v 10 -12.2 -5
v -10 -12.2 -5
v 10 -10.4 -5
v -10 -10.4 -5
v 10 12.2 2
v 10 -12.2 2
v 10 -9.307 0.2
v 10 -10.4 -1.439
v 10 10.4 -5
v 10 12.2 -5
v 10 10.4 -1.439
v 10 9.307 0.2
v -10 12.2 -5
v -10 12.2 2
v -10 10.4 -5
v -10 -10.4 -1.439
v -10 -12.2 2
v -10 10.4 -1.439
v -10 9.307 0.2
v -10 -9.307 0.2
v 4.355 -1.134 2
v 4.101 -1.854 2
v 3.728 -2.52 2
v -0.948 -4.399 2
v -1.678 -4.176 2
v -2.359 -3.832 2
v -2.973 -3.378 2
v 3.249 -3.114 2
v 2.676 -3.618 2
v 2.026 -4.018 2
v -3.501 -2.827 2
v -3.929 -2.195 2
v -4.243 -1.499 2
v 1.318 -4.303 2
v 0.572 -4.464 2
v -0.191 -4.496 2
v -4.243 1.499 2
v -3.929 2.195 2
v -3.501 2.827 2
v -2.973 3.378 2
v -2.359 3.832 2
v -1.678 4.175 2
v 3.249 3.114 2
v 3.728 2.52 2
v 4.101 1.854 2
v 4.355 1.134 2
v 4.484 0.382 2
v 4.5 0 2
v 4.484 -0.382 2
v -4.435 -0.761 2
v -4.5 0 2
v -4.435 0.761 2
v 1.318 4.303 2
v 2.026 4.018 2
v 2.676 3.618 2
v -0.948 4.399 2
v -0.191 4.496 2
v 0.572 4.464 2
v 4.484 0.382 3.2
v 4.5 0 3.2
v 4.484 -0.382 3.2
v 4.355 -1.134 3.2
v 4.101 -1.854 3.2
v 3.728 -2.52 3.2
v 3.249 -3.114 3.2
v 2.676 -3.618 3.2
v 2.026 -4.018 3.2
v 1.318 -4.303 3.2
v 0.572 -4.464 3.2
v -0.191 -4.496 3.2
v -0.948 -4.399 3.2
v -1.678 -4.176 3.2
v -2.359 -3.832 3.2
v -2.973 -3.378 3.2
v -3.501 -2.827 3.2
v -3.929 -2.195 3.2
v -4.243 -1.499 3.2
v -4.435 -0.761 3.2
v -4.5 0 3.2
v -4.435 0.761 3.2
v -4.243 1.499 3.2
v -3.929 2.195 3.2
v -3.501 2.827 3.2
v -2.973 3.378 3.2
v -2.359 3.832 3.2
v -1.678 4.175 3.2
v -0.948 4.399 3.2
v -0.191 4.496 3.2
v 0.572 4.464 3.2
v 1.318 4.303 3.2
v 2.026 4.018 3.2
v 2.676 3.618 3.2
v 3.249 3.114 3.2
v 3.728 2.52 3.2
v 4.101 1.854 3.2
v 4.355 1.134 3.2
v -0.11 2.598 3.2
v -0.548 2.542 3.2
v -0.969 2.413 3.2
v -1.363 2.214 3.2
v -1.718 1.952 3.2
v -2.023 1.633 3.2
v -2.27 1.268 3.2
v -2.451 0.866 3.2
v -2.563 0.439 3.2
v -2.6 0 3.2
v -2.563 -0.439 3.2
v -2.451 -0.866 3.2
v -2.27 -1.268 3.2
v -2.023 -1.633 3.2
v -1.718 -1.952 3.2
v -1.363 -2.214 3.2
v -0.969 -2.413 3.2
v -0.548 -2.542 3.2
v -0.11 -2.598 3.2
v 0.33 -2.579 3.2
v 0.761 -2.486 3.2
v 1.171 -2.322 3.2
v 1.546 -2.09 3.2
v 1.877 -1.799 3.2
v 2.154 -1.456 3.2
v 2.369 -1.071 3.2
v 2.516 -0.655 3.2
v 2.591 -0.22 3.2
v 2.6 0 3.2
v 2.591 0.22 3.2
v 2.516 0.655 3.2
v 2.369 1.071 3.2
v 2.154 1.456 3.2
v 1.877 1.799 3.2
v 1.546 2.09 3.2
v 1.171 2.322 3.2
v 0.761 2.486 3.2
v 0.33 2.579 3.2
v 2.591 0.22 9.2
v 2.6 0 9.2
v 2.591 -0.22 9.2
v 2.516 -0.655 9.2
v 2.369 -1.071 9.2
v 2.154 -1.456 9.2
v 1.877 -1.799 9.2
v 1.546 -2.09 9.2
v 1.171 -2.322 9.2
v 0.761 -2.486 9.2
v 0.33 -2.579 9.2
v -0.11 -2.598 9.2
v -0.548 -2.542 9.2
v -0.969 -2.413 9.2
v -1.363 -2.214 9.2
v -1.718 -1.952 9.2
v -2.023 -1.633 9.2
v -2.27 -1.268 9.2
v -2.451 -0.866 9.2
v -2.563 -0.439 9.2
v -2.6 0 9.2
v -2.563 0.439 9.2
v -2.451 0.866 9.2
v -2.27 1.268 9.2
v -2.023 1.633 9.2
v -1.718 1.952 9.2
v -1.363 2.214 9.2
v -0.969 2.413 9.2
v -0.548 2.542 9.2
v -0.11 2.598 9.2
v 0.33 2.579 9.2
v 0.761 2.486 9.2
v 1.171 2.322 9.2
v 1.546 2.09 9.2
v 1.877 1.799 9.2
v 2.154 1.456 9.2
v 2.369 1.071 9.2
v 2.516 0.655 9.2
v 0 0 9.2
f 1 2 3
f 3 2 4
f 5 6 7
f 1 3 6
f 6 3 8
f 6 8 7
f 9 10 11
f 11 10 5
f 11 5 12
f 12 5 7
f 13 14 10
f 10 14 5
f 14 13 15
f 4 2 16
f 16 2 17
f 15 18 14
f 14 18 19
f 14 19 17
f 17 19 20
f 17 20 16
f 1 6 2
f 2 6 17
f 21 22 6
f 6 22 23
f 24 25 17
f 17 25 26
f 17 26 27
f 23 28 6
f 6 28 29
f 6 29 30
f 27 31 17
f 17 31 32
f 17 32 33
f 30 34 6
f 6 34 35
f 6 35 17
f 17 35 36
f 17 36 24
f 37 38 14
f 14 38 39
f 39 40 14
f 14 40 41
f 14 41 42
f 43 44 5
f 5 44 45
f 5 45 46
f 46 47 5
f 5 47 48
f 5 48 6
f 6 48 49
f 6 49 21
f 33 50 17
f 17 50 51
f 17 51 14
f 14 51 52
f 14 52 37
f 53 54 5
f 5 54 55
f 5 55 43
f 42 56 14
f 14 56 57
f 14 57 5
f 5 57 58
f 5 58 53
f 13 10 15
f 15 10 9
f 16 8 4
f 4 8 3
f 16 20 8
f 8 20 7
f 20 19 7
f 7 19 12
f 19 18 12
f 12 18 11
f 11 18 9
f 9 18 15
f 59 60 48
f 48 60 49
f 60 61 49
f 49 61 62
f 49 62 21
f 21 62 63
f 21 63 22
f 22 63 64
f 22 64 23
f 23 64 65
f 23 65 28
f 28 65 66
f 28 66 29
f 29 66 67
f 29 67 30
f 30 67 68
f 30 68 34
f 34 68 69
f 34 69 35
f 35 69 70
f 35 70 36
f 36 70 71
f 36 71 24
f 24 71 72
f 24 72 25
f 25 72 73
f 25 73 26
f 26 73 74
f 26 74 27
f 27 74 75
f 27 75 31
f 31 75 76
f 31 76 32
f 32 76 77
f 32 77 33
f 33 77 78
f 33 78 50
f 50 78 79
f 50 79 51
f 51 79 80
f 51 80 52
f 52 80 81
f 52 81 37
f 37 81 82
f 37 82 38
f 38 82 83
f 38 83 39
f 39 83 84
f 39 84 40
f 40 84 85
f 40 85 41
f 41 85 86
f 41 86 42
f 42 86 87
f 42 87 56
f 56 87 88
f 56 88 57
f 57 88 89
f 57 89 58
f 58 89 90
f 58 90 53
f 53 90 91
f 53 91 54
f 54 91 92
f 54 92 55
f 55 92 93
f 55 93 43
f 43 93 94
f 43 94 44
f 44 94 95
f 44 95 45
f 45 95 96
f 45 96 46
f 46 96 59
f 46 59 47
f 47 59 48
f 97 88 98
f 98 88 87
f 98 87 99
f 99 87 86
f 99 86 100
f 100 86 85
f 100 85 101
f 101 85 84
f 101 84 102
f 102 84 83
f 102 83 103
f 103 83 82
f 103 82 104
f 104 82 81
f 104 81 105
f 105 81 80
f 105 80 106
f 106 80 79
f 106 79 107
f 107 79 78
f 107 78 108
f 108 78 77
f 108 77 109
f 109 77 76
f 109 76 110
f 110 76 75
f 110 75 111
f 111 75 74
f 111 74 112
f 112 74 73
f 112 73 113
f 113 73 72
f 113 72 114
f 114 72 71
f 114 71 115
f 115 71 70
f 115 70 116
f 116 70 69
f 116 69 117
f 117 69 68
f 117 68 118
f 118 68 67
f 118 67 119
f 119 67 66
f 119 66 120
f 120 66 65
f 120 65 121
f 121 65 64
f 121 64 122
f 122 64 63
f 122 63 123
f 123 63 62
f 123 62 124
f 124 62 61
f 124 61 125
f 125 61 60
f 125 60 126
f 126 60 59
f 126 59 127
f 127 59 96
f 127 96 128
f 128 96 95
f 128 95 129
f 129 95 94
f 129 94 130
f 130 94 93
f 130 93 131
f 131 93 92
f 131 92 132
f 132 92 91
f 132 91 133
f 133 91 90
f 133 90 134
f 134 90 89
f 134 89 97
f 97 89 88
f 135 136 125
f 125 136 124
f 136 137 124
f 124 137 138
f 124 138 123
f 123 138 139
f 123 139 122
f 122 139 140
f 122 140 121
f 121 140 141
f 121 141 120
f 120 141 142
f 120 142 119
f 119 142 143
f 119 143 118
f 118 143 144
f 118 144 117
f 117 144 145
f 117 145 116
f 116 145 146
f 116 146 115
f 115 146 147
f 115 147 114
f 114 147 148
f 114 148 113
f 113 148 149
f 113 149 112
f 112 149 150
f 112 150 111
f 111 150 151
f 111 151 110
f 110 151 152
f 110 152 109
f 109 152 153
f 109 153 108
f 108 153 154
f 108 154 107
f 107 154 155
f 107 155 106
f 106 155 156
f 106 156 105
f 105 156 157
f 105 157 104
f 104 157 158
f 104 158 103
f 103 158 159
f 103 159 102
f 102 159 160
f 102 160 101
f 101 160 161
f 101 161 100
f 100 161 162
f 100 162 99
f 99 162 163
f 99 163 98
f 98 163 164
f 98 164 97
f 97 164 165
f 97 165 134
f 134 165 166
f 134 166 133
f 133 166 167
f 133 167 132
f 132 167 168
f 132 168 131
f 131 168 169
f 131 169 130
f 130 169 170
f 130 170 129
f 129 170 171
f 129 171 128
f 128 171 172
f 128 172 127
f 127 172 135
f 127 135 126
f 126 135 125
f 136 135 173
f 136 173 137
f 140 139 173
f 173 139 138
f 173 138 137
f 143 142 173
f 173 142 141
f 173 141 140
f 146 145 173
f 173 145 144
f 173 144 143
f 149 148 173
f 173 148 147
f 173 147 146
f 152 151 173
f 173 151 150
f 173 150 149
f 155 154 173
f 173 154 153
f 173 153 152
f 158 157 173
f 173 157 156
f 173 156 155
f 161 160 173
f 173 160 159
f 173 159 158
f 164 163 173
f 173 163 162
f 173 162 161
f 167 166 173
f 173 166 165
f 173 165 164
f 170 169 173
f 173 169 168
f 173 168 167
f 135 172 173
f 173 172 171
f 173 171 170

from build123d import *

# Parameters (mm, degrees)
BOSS_EXTRUDE1_DEPTH      = 2
BOSS_EXTRUDE1_DEPTH_BACK = 5
SKETCH1_W                = 20
SKETCH1_H                = 24.4
CUT_EXTRUDE1_DEPTH       = 24.954957733
SKETCH4_R                = 4.5
BOSS_EXTRUDE2_DEPTH      = 1.2
SKETCH5_R                = 2.6
BOSS_EXTRUDE3_DEPTH      = 6


with BuildPart() as part:
    # Sketch1 → Boss-Extrude1 (new, two sides: drawn at the far end of the back side and taken through both)
    with BuildSketch(Plane.XY.offset(-BOSS_EXTRUDE1_DEPTH_BACK)):
        Rectangle(SKETCH1_W, SKETCH1_H)
    extrude(amount=BOSS_EXTRUDE1_DEPTH + BOSS_EXTRUDE1_DEPTH_BACK)

    # Sketch3 → Cut-Extrude1 (cut, through all)
    with BuildSketch(Plane(origin=(10, 0, 0), x_dir=(0, 0, -1), z_dir=(1, 0, 0))):
        Polygon((8.2, -10.4), (1.439444872, -10.4), (-0.2, -9.307036752), (-0.2, -7.95), (-0.2, -5.45), (-0.2, 5.45), (-0.2, 7.95), (-0.2, 9.307036752), (1.439444872, 10.4), (8.2, 10.4), align=None)
    extrude(amount=-CUT_EXTRUDE1_DEPTH, mode=Mode.SUBTRACT)

    # Sketch4 → Boss-Extrude2 (add)
    with BuildSketch(Plane.XY.offset(2)):
        Circle(SKETCH4_R)
    extrude(amount=BOSS_EXTRUDE2_DEPTH)

    # Sketch5 → Boss-Extrude3 (add)
    with BuildSketch(Plane.XY.offset(3.2)):
        Circle(SKETCH5_R)
    extrude(amount=BOSS_EXTRUDE3_DEPTH)


solid = part.part
